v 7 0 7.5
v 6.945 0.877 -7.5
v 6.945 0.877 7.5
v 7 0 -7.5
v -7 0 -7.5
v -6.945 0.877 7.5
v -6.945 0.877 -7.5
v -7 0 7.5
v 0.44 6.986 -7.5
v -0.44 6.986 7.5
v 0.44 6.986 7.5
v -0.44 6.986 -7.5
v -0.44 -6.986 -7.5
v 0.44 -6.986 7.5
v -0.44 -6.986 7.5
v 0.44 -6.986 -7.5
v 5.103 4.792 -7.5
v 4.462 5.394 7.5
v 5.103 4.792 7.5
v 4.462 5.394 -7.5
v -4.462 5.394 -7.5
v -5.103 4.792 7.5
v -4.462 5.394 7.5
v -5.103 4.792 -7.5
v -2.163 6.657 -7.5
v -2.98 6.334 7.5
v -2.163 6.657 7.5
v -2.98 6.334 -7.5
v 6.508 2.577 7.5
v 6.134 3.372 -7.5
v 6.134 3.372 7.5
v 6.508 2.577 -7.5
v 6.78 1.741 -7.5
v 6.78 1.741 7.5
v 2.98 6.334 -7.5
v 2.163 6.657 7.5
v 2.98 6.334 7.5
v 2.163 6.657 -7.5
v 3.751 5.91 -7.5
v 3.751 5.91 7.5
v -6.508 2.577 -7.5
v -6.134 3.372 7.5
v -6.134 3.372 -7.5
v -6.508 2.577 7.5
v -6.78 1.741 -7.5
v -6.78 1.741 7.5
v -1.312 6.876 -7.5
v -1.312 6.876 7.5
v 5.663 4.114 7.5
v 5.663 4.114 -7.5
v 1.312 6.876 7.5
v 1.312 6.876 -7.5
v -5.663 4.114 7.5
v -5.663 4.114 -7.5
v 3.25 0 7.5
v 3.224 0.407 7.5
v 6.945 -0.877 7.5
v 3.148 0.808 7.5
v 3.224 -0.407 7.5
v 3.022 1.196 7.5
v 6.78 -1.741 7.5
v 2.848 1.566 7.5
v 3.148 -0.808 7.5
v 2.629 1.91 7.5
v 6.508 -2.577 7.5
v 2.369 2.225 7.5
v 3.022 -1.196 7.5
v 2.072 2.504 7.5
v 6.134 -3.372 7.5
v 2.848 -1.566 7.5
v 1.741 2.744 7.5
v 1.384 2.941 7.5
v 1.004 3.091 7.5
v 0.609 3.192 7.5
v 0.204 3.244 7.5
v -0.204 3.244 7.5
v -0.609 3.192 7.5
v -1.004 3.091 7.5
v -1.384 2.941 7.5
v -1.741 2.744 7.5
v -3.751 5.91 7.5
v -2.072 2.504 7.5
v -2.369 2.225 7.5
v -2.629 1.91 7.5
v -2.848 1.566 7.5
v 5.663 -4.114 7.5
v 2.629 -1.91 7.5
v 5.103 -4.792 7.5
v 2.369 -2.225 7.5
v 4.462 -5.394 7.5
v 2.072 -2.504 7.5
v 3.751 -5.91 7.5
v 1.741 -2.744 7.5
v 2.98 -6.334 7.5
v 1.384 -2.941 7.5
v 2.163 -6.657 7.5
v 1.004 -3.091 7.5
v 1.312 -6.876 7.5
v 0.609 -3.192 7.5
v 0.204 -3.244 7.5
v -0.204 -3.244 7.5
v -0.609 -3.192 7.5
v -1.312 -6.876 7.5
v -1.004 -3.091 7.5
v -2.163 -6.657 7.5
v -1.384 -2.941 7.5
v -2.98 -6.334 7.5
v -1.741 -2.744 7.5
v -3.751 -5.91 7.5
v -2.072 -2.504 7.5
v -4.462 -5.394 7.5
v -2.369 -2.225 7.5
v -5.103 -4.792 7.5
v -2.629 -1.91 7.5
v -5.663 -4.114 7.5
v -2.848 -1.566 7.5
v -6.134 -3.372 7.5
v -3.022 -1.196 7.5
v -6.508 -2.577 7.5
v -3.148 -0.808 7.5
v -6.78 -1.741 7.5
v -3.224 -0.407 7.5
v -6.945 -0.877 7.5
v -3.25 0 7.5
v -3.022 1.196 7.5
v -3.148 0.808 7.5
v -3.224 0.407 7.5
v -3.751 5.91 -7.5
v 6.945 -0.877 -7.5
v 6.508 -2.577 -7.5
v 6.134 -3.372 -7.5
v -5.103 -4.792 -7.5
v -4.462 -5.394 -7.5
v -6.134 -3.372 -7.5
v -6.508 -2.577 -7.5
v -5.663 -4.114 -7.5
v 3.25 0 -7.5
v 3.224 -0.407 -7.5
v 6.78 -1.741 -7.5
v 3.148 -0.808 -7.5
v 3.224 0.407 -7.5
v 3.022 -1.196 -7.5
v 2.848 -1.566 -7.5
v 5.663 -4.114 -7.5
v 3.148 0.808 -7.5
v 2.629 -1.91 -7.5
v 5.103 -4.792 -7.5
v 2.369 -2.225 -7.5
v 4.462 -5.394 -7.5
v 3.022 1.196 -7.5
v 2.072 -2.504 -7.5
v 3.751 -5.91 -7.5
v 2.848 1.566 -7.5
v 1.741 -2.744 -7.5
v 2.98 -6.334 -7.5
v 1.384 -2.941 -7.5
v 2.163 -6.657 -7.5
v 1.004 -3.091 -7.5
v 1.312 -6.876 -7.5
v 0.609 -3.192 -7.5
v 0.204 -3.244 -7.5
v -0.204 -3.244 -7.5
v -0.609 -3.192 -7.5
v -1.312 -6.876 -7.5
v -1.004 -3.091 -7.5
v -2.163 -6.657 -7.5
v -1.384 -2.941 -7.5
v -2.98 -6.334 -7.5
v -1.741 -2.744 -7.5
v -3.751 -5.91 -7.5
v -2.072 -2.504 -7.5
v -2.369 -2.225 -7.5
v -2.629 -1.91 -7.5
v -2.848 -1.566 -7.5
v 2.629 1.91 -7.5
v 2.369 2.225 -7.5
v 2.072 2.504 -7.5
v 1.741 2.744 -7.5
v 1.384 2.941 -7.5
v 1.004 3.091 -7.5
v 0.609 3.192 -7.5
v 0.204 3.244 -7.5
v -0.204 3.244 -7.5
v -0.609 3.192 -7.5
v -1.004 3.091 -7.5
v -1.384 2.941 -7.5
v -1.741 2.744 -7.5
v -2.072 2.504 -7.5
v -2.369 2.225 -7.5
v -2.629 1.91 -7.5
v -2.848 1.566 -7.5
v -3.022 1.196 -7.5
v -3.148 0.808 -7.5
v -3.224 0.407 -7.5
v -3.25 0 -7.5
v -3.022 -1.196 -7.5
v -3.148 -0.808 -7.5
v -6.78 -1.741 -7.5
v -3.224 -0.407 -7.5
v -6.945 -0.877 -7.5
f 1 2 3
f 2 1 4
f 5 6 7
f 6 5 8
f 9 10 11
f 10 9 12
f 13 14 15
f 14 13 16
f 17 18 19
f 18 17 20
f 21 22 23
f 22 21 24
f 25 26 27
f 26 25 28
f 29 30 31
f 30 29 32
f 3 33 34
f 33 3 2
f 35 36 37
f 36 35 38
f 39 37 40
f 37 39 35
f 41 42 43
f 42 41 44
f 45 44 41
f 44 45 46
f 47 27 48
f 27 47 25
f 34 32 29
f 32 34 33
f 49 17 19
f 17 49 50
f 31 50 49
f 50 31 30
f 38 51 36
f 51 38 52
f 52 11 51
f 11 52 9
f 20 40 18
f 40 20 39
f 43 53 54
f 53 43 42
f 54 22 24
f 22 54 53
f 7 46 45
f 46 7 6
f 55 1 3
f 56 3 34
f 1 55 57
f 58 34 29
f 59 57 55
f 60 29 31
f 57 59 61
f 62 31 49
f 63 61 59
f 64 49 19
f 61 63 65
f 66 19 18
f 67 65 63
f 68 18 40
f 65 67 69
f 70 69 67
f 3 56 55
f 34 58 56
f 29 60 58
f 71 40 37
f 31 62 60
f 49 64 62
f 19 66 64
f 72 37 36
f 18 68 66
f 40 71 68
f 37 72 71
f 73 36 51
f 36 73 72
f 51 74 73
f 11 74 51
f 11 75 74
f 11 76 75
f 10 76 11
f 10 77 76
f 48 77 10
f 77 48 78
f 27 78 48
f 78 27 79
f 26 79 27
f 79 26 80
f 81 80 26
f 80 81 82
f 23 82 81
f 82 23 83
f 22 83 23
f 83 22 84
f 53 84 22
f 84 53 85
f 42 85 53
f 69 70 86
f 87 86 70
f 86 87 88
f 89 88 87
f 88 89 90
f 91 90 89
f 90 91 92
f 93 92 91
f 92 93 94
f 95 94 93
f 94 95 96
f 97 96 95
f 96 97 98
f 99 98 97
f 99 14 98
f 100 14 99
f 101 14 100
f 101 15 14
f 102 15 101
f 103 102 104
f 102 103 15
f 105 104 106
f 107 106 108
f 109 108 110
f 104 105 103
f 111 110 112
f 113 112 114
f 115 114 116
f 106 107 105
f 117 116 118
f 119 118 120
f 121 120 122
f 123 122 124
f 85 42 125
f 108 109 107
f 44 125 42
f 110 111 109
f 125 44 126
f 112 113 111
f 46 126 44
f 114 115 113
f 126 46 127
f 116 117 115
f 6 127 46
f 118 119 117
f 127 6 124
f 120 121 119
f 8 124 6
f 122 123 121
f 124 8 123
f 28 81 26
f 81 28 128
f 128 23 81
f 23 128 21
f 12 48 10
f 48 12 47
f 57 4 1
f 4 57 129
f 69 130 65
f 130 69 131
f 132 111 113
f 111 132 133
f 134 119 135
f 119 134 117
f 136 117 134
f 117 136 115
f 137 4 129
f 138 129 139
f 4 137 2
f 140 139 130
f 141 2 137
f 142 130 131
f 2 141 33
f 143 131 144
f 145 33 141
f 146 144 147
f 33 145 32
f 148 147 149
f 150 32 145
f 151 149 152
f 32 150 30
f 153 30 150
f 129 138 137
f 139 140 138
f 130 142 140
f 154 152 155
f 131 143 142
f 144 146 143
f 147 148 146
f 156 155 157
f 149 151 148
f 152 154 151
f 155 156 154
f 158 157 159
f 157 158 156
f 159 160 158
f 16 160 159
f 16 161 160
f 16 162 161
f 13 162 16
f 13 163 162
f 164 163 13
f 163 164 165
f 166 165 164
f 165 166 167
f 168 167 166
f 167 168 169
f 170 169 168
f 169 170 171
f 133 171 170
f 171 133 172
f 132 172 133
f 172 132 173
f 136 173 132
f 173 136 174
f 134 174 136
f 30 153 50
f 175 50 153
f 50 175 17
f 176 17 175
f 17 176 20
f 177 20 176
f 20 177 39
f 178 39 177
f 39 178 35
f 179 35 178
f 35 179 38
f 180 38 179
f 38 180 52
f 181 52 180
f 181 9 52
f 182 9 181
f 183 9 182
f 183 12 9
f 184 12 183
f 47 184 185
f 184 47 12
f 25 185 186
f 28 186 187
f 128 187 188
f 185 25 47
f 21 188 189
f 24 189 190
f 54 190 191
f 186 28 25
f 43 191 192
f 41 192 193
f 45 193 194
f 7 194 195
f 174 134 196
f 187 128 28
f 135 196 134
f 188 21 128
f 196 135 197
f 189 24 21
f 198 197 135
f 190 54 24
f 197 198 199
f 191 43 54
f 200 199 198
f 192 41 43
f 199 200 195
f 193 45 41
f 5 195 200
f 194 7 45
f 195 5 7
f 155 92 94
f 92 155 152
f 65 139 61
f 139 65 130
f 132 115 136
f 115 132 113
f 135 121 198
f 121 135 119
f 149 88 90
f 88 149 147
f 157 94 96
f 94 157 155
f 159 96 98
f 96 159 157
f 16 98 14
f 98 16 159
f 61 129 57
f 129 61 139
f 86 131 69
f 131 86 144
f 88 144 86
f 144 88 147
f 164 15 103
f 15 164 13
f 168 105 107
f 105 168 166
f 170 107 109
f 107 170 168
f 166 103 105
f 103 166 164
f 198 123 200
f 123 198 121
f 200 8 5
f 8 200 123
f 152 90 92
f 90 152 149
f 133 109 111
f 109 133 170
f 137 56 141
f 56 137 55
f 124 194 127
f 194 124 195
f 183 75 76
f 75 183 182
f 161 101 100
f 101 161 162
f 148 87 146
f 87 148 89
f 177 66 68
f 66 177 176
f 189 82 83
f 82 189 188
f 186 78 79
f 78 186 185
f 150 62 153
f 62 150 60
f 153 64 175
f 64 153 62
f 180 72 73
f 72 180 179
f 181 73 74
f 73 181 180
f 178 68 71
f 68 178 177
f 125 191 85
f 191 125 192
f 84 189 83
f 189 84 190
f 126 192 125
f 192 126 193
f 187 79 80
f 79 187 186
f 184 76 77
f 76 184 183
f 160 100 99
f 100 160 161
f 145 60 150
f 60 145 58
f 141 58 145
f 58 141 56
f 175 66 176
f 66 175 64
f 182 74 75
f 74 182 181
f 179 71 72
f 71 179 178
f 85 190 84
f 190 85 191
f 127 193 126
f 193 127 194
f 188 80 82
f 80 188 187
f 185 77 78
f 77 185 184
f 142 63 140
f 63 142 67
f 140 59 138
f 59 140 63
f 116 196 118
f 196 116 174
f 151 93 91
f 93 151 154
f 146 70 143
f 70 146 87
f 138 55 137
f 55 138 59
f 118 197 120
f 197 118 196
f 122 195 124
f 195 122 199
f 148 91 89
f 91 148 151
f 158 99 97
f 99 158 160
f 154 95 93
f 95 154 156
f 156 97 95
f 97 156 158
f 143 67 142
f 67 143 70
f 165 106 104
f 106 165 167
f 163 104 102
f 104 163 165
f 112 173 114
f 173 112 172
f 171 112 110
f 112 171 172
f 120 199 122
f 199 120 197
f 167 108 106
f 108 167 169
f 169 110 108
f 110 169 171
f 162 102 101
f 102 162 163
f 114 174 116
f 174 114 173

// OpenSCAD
$fn = 50;


difference() {
	union() {
		translate(v = [0, 0, -7.5000000000]) {
			cylinder(h = 15, r = 7.0000000000);
		}
	}
	union() {
		translate(v = [0, 0, -100.0000000000]) {
			cylinder(h = 200, r = 3.2500000000);
		}
	}
}
